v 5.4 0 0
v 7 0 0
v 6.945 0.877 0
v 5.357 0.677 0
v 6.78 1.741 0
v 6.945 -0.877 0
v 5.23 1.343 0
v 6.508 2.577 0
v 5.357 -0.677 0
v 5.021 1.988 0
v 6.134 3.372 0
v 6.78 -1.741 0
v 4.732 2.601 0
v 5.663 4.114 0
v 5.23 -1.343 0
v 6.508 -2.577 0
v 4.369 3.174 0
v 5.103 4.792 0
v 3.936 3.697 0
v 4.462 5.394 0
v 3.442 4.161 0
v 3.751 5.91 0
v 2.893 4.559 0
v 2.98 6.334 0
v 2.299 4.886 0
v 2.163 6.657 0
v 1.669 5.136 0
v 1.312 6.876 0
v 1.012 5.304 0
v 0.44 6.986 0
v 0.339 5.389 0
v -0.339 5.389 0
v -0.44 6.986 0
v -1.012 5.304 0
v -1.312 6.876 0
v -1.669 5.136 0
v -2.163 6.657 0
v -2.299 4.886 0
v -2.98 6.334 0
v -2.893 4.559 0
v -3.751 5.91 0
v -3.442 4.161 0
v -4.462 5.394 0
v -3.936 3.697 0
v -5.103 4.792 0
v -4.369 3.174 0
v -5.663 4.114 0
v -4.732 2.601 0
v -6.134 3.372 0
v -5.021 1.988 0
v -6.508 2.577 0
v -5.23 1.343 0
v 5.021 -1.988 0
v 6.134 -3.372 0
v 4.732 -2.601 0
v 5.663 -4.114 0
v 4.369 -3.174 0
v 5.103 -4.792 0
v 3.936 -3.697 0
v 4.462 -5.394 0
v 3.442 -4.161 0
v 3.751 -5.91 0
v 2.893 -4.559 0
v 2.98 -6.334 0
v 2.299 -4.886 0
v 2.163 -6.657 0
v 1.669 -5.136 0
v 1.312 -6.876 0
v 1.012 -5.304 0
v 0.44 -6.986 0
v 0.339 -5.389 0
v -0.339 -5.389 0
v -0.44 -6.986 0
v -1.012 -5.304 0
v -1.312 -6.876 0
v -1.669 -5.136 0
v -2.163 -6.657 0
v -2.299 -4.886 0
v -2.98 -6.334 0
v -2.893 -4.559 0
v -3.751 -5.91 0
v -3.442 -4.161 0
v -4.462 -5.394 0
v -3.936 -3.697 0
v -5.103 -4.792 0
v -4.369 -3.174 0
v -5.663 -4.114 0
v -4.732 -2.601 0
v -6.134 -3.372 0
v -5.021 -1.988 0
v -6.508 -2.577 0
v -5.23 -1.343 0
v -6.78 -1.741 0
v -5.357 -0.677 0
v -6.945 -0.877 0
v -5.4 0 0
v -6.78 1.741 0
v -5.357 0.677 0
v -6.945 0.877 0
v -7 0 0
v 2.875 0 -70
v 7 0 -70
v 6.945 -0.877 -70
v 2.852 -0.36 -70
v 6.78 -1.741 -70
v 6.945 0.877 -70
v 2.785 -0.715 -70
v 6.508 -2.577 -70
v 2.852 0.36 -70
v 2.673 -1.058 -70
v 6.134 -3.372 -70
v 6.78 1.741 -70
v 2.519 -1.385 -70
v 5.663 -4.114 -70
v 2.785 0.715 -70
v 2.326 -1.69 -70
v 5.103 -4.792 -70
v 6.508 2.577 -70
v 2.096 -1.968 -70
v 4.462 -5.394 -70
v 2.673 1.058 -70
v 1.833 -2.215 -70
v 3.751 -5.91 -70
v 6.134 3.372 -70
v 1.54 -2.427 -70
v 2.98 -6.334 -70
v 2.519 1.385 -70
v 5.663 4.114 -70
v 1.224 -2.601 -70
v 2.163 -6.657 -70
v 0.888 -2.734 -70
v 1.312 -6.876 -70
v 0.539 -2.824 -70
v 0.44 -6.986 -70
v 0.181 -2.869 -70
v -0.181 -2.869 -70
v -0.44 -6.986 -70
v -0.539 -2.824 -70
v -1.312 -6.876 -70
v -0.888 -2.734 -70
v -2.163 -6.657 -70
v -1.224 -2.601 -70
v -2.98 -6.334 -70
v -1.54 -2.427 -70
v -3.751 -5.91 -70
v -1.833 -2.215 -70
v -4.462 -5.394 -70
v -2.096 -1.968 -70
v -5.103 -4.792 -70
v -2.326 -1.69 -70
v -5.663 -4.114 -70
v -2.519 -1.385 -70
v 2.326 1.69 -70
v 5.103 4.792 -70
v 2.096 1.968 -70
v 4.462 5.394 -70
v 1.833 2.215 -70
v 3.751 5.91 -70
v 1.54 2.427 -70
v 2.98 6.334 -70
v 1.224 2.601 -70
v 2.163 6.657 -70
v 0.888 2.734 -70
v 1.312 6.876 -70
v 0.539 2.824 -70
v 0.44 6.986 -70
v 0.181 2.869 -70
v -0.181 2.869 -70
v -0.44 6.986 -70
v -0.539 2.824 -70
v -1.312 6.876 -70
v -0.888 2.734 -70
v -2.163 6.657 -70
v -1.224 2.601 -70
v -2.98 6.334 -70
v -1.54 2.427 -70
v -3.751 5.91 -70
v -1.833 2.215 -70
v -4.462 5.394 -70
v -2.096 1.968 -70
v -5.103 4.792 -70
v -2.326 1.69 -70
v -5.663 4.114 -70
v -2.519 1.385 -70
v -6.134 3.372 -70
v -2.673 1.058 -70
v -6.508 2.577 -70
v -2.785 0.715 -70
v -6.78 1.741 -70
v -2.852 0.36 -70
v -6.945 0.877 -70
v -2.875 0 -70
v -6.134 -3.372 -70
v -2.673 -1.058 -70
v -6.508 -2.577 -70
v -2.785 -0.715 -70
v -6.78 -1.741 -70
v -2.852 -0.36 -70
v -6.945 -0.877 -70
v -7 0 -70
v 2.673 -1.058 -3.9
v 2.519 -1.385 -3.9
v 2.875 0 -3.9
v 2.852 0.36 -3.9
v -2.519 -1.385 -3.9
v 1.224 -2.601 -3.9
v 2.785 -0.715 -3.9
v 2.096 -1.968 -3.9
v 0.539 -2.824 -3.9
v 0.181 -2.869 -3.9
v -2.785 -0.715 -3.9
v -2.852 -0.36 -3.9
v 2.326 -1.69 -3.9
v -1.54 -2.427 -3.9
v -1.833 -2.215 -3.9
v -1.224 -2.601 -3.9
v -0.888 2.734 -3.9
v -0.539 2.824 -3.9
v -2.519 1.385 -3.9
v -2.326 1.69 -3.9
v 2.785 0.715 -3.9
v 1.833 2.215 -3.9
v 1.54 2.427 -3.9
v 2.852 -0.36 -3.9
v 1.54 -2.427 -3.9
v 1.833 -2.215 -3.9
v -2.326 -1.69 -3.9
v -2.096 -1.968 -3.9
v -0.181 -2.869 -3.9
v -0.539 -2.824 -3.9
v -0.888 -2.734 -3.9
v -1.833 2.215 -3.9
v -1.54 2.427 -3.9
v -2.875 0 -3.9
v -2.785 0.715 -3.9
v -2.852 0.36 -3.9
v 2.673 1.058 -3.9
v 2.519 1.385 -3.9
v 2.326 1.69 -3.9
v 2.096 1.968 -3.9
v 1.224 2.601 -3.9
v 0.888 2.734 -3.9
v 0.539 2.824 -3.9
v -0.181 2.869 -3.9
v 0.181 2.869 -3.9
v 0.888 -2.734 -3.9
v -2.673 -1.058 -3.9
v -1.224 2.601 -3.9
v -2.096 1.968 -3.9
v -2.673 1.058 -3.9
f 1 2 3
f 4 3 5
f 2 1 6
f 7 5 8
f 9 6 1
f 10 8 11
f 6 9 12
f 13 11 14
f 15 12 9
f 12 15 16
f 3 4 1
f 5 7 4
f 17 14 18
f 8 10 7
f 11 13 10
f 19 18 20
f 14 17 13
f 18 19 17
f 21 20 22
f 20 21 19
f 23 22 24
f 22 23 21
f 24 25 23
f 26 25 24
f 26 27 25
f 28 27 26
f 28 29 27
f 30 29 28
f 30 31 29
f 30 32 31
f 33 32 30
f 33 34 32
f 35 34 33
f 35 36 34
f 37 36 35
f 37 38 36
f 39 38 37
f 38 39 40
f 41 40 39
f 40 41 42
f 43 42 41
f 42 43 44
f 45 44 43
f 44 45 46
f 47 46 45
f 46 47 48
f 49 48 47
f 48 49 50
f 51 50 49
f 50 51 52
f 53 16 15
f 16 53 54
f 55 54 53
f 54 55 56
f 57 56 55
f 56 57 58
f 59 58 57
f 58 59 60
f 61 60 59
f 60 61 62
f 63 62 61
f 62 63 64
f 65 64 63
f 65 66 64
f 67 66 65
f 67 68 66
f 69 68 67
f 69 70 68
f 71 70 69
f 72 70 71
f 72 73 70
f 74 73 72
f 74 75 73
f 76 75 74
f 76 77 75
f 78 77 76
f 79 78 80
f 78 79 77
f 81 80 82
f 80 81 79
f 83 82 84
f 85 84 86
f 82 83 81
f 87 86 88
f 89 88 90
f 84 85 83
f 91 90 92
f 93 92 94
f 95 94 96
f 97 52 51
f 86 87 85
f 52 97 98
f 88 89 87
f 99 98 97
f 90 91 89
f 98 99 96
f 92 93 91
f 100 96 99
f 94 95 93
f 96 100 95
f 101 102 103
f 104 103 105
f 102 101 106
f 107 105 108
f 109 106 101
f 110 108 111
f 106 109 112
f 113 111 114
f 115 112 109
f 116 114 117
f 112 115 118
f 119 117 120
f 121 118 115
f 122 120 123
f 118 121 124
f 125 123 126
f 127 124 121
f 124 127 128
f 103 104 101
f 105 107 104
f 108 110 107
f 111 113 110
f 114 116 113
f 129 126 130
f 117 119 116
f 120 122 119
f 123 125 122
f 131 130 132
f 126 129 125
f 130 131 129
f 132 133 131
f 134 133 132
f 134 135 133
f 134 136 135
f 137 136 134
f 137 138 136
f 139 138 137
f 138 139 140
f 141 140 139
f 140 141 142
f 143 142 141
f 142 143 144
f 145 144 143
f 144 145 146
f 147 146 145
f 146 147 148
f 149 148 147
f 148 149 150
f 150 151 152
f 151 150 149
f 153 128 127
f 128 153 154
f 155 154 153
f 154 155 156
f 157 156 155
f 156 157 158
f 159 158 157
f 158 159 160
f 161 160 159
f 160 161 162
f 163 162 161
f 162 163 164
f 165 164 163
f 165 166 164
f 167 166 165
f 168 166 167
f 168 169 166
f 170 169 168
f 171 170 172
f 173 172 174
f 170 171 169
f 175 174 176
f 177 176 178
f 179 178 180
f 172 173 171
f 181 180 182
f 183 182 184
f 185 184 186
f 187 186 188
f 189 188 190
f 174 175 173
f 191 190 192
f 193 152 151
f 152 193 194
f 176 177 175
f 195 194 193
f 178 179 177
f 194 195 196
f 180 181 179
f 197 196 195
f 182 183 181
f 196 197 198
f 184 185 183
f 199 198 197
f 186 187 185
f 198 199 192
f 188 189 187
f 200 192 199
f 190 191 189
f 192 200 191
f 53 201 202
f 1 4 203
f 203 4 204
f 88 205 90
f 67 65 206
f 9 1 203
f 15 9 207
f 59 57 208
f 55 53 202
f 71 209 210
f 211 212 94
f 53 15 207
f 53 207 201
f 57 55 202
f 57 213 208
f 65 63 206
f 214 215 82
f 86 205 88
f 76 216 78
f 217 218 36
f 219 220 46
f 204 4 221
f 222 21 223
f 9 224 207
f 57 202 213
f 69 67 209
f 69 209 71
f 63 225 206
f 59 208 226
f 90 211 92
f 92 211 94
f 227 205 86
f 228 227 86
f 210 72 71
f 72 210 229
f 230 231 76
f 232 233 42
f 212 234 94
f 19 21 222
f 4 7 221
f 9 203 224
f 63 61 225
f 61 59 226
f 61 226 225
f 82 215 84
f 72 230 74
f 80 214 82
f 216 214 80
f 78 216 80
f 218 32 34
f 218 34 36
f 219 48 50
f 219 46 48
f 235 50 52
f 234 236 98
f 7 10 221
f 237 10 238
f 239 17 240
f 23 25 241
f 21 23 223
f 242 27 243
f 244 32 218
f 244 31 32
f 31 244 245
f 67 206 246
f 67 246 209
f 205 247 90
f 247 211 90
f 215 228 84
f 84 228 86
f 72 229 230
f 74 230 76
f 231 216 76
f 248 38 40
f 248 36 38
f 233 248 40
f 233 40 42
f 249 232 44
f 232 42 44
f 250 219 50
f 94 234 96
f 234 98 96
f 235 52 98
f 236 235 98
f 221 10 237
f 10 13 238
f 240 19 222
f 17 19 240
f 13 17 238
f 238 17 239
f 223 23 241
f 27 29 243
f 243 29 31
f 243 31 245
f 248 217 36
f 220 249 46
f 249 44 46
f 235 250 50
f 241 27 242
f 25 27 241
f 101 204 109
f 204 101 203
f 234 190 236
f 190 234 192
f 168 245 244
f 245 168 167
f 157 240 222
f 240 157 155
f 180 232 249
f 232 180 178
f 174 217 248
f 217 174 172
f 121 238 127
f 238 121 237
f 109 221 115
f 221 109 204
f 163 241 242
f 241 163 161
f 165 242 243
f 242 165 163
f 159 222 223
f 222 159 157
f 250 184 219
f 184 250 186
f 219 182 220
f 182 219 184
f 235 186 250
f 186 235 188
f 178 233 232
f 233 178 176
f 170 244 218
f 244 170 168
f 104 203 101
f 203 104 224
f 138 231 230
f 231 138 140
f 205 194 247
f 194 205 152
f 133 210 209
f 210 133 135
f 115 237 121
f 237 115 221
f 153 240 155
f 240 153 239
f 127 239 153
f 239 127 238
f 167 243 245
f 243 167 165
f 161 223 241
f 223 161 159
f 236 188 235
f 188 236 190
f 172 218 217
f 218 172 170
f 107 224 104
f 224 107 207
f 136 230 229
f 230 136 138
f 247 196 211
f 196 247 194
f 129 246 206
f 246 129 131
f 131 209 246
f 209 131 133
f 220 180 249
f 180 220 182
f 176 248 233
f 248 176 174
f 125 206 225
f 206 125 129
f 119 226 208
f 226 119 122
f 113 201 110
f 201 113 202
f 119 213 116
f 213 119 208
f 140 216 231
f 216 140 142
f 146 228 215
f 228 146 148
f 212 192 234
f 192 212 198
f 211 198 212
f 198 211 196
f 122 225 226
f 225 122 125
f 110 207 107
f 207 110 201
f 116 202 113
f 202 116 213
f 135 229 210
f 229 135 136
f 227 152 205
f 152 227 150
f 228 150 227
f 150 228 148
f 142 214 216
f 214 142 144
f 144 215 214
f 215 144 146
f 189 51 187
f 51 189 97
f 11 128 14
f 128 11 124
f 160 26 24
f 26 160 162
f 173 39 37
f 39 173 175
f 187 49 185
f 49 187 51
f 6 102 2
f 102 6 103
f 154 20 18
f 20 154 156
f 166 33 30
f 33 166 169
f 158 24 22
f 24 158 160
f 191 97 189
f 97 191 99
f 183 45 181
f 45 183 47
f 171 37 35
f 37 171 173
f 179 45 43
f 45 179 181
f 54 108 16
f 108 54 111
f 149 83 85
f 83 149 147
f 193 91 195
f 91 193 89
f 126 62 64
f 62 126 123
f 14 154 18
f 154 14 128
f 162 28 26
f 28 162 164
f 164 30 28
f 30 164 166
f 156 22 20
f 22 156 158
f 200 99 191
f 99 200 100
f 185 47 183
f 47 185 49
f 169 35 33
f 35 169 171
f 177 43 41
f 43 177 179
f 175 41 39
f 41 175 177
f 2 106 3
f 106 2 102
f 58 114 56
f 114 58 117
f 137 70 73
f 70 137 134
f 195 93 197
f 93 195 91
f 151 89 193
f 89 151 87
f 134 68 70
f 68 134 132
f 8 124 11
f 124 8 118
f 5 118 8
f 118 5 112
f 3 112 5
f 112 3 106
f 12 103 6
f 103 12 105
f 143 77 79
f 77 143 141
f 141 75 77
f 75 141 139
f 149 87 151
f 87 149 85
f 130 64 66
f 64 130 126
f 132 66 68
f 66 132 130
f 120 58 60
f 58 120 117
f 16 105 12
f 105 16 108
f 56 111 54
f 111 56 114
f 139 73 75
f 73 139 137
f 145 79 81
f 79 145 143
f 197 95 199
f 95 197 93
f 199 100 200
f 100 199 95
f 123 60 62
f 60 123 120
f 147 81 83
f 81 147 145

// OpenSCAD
$fn = 50;


difference() {
	union() {
		translate(v = [0, 0, -70.0000000000]) {
			cylinder(h = 70, r = 7.0000000000);
		}
		cylinder(h = 0, r = 13.0000000000);
	}
	union() {
		translate(v = [0, 0, 0]) {
			rotate(a = [0, 0, 0]) {
				difference() {
					union() {
						#translate(v = [0, 0, -70.0000000000]) {
							cylinder(h = 70, r = 2.6000000000);
						}
						#translate(v = [0, 0, -3.9000000000]) {
							cylinder(h = 3.9000000000, r1 = 2.8750000000, r2 = 5.4000000000);
						}
						#translate(v = [0, 0, -70.0000000000]) {
							cylinder(h = 70, r = 2.8750000000);
						}
						#translate(v = [0, 0, -70.0000000000]) {
							cylinder(h = 70, r = 2.6000000000);
						}
					}
					union();
				}
			}
		}
	}
}
